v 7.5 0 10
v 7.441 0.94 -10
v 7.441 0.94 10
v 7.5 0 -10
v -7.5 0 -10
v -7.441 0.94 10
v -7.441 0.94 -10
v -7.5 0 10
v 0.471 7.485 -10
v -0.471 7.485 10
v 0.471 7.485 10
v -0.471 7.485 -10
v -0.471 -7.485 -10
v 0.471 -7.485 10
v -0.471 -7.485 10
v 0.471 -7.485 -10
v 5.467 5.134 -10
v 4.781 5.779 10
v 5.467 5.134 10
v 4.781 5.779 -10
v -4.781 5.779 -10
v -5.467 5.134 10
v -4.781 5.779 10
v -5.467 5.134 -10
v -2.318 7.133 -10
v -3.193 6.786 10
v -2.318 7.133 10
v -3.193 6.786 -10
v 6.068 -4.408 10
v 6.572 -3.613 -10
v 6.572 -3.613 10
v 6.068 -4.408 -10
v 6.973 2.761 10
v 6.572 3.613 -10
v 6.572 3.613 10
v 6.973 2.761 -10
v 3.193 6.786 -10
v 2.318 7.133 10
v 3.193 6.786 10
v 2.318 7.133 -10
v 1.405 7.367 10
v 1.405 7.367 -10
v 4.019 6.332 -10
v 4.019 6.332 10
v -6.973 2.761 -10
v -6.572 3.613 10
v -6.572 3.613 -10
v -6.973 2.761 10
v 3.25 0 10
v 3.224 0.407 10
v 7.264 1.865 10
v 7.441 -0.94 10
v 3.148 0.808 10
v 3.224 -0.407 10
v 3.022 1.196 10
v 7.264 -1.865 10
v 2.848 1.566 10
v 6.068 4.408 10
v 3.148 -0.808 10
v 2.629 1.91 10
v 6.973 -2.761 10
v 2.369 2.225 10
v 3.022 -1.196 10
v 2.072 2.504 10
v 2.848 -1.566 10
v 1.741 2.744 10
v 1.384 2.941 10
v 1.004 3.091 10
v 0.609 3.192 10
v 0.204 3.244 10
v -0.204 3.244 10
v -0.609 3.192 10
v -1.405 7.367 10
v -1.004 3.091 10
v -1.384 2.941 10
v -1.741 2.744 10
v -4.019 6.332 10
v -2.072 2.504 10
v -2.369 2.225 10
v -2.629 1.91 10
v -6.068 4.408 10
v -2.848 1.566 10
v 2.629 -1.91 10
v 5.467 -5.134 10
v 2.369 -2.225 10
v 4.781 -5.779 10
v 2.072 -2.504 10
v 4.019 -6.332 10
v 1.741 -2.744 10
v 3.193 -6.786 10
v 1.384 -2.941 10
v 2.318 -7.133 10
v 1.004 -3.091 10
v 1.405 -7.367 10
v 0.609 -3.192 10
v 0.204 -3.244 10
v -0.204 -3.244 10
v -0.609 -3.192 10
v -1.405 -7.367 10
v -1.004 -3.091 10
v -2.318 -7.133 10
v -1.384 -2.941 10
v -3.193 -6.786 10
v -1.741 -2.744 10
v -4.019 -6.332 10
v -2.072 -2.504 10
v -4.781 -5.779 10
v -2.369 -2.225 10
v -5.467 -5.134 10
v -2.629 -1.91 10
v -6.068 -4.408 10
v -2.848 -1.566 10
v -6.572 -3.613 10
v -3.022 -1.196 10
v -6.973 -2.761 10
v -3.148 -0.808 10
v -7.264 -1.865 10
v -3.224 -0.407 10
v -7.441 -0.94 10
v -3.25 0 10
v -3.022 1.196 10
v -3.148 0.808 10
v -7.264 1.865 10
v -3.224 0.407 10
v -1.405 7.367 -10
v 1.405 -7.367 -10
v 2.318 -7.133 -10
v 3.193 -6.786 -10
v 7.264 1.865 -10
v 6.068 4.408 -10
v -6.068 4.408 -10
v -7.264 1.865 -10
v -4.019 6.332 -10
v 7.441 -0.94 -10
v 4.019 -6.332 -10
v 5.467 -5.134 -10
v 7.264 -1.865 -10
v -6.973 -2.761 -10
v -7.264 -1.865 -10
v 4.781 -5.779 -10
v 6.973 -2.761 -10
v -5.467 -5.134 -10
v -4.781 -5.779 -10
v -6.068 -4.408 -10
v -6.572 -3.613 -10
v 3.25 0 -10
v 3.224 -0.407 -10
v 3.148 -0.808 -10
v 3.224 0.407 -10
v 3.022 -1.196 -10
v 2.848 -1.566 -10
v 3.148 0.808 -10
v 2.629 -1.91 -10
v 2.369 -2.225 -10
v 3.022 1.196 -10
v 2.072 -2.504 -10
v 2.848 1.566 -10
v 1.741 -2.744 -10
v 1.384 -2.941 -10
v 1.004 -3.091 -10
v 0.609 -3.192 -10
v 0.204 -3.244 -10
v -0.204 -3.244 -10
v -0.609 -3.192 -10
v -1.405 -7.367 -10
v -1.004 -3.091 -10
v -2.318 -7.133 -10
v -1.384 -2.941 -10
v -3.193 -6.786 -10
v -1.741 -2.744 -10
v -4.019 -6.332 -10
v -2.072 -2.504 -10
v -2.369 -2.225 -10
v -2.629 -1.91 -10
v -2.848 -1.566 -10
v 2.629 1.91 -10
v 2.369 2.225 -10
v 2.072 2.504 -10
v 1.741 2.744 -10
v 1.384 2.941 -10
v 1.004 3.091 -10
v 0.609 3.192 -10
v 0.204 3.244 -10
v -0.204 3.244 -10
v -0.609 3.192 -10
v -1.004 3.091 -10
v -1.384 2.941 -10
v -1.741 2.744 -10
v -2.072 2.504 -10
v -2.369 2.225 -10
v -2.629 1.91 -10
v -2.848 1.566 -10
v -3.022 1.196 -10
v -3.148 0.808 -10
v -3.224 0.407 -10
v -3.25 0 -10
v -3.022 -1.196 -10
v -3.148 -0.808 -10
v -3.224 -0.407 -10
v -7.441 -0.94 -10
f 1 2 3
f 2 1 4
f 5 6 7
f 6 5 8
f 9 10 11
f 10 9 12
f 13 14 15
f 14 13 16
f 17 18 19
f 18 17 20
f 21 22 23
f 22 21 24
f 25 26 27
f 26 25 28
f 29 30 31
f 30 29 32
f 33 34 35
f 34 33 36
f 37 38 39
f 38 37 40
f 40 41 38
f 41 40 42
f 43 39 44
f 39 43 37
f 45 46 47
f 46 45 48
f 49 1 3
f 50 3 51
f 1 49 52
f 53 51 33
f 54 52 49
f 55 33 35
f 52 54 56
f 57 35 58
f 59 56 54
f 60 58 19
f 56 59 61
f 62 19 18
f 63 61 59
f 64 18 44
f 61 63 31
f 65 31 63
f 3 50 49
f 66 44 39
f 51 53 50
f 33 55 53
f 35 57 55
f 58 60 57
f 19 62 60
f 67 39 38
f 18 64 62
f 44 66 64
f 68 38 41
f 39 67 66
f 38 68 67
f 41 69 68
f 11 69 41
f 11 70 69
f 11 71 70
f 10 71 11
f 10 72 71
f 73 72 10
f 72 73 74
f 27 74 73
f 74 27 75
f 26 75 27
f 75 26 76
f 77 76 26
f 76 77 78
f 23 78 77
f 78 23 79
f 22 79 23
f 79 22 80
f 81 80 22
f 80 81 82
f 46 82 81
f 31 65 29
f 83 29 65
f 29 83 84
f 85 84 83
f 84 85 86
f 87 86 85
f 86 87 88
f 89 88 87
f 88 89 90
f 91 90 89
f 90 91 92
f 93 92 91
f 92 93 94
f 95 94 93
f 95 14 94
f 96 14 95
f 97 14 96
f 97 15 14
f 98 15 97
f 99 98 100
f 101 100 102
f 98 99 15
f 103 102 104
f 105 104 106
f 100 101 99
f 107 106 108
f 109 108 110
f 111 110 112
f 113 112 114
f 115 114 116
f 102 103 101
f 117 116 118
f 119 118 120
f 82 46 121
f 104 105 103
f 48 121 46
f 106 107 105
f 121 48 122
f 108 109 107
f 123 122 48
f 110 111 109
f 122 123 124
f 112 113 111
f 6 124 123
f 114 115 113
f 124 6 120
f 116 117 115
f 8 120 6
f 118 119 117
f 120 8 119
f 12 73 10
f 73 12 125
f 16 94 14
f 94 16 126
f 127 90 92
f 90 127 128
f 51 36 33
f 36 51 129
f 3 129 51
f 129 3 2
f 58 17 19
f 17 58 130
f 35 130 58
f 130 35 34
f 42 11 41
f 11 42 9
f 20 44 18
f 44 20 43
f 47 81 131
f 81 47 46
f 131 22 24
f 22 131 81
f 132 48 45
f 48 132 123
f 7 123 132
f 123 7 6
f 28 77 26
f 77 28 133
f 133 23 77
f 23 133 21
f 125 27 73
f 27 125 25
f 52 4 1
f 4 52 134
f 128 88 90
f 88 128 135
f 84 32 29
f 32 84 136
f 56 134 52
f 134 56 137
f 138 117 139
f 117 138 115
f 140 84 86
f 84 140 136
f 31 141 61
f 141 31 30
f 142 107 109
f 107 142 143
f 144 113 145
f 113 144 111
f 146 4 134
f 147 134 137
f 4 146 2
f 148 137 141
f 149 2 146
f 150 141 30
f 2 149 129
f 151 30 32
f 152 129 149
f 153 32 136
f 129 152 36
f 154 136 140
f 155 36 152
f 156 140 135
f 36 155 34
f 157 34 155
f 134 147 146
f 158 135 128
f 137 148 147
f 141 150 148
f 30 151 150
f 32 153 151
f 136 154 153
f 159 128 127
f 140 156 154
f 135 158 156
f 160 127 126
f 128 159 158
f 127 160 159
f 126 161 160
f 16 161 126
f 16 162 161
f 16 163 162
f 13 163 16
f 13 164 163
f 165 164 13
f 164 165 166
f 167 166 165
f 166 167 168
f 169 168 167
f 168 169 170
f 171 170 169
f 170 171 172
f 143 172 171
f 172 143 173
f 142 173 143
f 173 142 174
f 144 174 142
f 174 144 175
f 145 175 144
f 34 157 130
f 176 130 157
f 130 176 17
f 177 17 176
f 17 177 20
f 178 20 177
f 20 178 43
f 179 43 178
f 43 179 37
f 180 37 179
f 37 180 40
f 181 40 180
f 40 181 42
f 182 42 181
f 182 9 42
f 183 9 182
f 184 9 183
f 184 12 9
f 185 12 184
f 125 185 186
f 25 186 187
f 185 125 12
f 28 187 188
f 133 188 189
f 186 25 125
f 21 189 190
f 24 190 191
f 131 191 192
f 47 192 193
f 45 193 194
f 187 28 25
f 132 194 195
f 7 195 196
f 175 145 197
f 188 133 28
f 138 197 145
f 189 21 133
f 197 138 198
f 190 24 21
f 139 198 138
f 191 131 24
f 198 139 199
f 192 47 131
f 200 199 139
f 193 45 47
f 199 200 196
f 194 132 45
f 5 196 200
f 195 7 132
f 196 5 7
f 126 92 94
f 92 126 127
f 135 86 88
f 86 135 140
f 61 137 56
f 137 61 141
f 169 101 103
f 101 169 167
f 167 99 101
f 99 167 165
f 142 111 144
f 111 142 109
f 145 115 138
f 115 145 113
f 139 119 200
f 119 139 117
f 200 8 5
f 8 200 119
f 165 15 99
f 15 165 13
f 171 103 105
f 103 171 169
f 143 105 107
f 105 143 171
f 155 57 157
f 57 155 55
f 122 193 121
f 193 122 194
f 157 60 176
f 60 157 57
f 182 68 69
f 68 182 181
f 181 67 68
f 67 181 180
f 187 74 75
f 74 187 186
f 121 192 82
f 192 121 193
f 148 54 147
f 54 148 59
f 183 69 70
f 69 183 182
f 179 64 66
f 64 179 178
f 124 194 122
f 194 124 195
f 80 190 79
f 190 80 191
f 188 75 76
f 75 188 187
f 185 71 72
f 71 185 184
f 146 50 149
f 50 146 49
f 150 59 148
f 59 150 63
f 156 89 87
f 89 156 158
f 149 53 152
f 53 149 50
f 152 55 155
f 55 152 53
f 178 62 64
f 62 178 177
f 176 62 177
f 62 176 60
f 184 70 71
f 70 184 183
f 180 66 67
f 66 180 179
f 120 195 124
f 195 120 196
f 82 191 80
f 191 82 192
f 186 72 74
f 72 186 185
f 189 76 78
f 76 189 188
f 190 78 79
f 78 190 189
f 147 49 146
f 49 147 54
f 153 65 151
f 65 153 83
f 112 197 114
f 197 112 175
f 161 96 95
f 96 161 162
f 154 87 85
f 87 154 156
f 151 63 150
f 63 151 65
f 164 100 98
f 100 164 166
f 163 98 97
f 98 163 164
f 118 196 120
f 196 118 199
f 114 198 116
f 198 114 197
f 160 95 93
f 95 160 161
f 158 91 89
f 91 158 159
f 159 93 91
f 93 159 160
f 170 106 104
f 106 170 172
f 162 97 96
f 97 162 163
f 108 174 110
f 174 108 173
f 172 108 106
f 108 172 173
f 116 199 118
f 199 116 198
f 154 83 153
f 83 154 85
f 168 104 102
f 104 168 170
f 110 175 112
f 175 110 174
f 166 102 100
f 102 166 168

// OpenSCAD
$fn = 50;


difference() {
	union() {
		translate(v = [0, 0, -10.0000000000]) {
			cylinder(h = 20, r = 7.5000000000);
		}
	}
	union() {
		translate(v = [0, 0, -100.0000000000]) {
			cylinder(h = 200, r = 3.2500000000);
		}
	}
}
